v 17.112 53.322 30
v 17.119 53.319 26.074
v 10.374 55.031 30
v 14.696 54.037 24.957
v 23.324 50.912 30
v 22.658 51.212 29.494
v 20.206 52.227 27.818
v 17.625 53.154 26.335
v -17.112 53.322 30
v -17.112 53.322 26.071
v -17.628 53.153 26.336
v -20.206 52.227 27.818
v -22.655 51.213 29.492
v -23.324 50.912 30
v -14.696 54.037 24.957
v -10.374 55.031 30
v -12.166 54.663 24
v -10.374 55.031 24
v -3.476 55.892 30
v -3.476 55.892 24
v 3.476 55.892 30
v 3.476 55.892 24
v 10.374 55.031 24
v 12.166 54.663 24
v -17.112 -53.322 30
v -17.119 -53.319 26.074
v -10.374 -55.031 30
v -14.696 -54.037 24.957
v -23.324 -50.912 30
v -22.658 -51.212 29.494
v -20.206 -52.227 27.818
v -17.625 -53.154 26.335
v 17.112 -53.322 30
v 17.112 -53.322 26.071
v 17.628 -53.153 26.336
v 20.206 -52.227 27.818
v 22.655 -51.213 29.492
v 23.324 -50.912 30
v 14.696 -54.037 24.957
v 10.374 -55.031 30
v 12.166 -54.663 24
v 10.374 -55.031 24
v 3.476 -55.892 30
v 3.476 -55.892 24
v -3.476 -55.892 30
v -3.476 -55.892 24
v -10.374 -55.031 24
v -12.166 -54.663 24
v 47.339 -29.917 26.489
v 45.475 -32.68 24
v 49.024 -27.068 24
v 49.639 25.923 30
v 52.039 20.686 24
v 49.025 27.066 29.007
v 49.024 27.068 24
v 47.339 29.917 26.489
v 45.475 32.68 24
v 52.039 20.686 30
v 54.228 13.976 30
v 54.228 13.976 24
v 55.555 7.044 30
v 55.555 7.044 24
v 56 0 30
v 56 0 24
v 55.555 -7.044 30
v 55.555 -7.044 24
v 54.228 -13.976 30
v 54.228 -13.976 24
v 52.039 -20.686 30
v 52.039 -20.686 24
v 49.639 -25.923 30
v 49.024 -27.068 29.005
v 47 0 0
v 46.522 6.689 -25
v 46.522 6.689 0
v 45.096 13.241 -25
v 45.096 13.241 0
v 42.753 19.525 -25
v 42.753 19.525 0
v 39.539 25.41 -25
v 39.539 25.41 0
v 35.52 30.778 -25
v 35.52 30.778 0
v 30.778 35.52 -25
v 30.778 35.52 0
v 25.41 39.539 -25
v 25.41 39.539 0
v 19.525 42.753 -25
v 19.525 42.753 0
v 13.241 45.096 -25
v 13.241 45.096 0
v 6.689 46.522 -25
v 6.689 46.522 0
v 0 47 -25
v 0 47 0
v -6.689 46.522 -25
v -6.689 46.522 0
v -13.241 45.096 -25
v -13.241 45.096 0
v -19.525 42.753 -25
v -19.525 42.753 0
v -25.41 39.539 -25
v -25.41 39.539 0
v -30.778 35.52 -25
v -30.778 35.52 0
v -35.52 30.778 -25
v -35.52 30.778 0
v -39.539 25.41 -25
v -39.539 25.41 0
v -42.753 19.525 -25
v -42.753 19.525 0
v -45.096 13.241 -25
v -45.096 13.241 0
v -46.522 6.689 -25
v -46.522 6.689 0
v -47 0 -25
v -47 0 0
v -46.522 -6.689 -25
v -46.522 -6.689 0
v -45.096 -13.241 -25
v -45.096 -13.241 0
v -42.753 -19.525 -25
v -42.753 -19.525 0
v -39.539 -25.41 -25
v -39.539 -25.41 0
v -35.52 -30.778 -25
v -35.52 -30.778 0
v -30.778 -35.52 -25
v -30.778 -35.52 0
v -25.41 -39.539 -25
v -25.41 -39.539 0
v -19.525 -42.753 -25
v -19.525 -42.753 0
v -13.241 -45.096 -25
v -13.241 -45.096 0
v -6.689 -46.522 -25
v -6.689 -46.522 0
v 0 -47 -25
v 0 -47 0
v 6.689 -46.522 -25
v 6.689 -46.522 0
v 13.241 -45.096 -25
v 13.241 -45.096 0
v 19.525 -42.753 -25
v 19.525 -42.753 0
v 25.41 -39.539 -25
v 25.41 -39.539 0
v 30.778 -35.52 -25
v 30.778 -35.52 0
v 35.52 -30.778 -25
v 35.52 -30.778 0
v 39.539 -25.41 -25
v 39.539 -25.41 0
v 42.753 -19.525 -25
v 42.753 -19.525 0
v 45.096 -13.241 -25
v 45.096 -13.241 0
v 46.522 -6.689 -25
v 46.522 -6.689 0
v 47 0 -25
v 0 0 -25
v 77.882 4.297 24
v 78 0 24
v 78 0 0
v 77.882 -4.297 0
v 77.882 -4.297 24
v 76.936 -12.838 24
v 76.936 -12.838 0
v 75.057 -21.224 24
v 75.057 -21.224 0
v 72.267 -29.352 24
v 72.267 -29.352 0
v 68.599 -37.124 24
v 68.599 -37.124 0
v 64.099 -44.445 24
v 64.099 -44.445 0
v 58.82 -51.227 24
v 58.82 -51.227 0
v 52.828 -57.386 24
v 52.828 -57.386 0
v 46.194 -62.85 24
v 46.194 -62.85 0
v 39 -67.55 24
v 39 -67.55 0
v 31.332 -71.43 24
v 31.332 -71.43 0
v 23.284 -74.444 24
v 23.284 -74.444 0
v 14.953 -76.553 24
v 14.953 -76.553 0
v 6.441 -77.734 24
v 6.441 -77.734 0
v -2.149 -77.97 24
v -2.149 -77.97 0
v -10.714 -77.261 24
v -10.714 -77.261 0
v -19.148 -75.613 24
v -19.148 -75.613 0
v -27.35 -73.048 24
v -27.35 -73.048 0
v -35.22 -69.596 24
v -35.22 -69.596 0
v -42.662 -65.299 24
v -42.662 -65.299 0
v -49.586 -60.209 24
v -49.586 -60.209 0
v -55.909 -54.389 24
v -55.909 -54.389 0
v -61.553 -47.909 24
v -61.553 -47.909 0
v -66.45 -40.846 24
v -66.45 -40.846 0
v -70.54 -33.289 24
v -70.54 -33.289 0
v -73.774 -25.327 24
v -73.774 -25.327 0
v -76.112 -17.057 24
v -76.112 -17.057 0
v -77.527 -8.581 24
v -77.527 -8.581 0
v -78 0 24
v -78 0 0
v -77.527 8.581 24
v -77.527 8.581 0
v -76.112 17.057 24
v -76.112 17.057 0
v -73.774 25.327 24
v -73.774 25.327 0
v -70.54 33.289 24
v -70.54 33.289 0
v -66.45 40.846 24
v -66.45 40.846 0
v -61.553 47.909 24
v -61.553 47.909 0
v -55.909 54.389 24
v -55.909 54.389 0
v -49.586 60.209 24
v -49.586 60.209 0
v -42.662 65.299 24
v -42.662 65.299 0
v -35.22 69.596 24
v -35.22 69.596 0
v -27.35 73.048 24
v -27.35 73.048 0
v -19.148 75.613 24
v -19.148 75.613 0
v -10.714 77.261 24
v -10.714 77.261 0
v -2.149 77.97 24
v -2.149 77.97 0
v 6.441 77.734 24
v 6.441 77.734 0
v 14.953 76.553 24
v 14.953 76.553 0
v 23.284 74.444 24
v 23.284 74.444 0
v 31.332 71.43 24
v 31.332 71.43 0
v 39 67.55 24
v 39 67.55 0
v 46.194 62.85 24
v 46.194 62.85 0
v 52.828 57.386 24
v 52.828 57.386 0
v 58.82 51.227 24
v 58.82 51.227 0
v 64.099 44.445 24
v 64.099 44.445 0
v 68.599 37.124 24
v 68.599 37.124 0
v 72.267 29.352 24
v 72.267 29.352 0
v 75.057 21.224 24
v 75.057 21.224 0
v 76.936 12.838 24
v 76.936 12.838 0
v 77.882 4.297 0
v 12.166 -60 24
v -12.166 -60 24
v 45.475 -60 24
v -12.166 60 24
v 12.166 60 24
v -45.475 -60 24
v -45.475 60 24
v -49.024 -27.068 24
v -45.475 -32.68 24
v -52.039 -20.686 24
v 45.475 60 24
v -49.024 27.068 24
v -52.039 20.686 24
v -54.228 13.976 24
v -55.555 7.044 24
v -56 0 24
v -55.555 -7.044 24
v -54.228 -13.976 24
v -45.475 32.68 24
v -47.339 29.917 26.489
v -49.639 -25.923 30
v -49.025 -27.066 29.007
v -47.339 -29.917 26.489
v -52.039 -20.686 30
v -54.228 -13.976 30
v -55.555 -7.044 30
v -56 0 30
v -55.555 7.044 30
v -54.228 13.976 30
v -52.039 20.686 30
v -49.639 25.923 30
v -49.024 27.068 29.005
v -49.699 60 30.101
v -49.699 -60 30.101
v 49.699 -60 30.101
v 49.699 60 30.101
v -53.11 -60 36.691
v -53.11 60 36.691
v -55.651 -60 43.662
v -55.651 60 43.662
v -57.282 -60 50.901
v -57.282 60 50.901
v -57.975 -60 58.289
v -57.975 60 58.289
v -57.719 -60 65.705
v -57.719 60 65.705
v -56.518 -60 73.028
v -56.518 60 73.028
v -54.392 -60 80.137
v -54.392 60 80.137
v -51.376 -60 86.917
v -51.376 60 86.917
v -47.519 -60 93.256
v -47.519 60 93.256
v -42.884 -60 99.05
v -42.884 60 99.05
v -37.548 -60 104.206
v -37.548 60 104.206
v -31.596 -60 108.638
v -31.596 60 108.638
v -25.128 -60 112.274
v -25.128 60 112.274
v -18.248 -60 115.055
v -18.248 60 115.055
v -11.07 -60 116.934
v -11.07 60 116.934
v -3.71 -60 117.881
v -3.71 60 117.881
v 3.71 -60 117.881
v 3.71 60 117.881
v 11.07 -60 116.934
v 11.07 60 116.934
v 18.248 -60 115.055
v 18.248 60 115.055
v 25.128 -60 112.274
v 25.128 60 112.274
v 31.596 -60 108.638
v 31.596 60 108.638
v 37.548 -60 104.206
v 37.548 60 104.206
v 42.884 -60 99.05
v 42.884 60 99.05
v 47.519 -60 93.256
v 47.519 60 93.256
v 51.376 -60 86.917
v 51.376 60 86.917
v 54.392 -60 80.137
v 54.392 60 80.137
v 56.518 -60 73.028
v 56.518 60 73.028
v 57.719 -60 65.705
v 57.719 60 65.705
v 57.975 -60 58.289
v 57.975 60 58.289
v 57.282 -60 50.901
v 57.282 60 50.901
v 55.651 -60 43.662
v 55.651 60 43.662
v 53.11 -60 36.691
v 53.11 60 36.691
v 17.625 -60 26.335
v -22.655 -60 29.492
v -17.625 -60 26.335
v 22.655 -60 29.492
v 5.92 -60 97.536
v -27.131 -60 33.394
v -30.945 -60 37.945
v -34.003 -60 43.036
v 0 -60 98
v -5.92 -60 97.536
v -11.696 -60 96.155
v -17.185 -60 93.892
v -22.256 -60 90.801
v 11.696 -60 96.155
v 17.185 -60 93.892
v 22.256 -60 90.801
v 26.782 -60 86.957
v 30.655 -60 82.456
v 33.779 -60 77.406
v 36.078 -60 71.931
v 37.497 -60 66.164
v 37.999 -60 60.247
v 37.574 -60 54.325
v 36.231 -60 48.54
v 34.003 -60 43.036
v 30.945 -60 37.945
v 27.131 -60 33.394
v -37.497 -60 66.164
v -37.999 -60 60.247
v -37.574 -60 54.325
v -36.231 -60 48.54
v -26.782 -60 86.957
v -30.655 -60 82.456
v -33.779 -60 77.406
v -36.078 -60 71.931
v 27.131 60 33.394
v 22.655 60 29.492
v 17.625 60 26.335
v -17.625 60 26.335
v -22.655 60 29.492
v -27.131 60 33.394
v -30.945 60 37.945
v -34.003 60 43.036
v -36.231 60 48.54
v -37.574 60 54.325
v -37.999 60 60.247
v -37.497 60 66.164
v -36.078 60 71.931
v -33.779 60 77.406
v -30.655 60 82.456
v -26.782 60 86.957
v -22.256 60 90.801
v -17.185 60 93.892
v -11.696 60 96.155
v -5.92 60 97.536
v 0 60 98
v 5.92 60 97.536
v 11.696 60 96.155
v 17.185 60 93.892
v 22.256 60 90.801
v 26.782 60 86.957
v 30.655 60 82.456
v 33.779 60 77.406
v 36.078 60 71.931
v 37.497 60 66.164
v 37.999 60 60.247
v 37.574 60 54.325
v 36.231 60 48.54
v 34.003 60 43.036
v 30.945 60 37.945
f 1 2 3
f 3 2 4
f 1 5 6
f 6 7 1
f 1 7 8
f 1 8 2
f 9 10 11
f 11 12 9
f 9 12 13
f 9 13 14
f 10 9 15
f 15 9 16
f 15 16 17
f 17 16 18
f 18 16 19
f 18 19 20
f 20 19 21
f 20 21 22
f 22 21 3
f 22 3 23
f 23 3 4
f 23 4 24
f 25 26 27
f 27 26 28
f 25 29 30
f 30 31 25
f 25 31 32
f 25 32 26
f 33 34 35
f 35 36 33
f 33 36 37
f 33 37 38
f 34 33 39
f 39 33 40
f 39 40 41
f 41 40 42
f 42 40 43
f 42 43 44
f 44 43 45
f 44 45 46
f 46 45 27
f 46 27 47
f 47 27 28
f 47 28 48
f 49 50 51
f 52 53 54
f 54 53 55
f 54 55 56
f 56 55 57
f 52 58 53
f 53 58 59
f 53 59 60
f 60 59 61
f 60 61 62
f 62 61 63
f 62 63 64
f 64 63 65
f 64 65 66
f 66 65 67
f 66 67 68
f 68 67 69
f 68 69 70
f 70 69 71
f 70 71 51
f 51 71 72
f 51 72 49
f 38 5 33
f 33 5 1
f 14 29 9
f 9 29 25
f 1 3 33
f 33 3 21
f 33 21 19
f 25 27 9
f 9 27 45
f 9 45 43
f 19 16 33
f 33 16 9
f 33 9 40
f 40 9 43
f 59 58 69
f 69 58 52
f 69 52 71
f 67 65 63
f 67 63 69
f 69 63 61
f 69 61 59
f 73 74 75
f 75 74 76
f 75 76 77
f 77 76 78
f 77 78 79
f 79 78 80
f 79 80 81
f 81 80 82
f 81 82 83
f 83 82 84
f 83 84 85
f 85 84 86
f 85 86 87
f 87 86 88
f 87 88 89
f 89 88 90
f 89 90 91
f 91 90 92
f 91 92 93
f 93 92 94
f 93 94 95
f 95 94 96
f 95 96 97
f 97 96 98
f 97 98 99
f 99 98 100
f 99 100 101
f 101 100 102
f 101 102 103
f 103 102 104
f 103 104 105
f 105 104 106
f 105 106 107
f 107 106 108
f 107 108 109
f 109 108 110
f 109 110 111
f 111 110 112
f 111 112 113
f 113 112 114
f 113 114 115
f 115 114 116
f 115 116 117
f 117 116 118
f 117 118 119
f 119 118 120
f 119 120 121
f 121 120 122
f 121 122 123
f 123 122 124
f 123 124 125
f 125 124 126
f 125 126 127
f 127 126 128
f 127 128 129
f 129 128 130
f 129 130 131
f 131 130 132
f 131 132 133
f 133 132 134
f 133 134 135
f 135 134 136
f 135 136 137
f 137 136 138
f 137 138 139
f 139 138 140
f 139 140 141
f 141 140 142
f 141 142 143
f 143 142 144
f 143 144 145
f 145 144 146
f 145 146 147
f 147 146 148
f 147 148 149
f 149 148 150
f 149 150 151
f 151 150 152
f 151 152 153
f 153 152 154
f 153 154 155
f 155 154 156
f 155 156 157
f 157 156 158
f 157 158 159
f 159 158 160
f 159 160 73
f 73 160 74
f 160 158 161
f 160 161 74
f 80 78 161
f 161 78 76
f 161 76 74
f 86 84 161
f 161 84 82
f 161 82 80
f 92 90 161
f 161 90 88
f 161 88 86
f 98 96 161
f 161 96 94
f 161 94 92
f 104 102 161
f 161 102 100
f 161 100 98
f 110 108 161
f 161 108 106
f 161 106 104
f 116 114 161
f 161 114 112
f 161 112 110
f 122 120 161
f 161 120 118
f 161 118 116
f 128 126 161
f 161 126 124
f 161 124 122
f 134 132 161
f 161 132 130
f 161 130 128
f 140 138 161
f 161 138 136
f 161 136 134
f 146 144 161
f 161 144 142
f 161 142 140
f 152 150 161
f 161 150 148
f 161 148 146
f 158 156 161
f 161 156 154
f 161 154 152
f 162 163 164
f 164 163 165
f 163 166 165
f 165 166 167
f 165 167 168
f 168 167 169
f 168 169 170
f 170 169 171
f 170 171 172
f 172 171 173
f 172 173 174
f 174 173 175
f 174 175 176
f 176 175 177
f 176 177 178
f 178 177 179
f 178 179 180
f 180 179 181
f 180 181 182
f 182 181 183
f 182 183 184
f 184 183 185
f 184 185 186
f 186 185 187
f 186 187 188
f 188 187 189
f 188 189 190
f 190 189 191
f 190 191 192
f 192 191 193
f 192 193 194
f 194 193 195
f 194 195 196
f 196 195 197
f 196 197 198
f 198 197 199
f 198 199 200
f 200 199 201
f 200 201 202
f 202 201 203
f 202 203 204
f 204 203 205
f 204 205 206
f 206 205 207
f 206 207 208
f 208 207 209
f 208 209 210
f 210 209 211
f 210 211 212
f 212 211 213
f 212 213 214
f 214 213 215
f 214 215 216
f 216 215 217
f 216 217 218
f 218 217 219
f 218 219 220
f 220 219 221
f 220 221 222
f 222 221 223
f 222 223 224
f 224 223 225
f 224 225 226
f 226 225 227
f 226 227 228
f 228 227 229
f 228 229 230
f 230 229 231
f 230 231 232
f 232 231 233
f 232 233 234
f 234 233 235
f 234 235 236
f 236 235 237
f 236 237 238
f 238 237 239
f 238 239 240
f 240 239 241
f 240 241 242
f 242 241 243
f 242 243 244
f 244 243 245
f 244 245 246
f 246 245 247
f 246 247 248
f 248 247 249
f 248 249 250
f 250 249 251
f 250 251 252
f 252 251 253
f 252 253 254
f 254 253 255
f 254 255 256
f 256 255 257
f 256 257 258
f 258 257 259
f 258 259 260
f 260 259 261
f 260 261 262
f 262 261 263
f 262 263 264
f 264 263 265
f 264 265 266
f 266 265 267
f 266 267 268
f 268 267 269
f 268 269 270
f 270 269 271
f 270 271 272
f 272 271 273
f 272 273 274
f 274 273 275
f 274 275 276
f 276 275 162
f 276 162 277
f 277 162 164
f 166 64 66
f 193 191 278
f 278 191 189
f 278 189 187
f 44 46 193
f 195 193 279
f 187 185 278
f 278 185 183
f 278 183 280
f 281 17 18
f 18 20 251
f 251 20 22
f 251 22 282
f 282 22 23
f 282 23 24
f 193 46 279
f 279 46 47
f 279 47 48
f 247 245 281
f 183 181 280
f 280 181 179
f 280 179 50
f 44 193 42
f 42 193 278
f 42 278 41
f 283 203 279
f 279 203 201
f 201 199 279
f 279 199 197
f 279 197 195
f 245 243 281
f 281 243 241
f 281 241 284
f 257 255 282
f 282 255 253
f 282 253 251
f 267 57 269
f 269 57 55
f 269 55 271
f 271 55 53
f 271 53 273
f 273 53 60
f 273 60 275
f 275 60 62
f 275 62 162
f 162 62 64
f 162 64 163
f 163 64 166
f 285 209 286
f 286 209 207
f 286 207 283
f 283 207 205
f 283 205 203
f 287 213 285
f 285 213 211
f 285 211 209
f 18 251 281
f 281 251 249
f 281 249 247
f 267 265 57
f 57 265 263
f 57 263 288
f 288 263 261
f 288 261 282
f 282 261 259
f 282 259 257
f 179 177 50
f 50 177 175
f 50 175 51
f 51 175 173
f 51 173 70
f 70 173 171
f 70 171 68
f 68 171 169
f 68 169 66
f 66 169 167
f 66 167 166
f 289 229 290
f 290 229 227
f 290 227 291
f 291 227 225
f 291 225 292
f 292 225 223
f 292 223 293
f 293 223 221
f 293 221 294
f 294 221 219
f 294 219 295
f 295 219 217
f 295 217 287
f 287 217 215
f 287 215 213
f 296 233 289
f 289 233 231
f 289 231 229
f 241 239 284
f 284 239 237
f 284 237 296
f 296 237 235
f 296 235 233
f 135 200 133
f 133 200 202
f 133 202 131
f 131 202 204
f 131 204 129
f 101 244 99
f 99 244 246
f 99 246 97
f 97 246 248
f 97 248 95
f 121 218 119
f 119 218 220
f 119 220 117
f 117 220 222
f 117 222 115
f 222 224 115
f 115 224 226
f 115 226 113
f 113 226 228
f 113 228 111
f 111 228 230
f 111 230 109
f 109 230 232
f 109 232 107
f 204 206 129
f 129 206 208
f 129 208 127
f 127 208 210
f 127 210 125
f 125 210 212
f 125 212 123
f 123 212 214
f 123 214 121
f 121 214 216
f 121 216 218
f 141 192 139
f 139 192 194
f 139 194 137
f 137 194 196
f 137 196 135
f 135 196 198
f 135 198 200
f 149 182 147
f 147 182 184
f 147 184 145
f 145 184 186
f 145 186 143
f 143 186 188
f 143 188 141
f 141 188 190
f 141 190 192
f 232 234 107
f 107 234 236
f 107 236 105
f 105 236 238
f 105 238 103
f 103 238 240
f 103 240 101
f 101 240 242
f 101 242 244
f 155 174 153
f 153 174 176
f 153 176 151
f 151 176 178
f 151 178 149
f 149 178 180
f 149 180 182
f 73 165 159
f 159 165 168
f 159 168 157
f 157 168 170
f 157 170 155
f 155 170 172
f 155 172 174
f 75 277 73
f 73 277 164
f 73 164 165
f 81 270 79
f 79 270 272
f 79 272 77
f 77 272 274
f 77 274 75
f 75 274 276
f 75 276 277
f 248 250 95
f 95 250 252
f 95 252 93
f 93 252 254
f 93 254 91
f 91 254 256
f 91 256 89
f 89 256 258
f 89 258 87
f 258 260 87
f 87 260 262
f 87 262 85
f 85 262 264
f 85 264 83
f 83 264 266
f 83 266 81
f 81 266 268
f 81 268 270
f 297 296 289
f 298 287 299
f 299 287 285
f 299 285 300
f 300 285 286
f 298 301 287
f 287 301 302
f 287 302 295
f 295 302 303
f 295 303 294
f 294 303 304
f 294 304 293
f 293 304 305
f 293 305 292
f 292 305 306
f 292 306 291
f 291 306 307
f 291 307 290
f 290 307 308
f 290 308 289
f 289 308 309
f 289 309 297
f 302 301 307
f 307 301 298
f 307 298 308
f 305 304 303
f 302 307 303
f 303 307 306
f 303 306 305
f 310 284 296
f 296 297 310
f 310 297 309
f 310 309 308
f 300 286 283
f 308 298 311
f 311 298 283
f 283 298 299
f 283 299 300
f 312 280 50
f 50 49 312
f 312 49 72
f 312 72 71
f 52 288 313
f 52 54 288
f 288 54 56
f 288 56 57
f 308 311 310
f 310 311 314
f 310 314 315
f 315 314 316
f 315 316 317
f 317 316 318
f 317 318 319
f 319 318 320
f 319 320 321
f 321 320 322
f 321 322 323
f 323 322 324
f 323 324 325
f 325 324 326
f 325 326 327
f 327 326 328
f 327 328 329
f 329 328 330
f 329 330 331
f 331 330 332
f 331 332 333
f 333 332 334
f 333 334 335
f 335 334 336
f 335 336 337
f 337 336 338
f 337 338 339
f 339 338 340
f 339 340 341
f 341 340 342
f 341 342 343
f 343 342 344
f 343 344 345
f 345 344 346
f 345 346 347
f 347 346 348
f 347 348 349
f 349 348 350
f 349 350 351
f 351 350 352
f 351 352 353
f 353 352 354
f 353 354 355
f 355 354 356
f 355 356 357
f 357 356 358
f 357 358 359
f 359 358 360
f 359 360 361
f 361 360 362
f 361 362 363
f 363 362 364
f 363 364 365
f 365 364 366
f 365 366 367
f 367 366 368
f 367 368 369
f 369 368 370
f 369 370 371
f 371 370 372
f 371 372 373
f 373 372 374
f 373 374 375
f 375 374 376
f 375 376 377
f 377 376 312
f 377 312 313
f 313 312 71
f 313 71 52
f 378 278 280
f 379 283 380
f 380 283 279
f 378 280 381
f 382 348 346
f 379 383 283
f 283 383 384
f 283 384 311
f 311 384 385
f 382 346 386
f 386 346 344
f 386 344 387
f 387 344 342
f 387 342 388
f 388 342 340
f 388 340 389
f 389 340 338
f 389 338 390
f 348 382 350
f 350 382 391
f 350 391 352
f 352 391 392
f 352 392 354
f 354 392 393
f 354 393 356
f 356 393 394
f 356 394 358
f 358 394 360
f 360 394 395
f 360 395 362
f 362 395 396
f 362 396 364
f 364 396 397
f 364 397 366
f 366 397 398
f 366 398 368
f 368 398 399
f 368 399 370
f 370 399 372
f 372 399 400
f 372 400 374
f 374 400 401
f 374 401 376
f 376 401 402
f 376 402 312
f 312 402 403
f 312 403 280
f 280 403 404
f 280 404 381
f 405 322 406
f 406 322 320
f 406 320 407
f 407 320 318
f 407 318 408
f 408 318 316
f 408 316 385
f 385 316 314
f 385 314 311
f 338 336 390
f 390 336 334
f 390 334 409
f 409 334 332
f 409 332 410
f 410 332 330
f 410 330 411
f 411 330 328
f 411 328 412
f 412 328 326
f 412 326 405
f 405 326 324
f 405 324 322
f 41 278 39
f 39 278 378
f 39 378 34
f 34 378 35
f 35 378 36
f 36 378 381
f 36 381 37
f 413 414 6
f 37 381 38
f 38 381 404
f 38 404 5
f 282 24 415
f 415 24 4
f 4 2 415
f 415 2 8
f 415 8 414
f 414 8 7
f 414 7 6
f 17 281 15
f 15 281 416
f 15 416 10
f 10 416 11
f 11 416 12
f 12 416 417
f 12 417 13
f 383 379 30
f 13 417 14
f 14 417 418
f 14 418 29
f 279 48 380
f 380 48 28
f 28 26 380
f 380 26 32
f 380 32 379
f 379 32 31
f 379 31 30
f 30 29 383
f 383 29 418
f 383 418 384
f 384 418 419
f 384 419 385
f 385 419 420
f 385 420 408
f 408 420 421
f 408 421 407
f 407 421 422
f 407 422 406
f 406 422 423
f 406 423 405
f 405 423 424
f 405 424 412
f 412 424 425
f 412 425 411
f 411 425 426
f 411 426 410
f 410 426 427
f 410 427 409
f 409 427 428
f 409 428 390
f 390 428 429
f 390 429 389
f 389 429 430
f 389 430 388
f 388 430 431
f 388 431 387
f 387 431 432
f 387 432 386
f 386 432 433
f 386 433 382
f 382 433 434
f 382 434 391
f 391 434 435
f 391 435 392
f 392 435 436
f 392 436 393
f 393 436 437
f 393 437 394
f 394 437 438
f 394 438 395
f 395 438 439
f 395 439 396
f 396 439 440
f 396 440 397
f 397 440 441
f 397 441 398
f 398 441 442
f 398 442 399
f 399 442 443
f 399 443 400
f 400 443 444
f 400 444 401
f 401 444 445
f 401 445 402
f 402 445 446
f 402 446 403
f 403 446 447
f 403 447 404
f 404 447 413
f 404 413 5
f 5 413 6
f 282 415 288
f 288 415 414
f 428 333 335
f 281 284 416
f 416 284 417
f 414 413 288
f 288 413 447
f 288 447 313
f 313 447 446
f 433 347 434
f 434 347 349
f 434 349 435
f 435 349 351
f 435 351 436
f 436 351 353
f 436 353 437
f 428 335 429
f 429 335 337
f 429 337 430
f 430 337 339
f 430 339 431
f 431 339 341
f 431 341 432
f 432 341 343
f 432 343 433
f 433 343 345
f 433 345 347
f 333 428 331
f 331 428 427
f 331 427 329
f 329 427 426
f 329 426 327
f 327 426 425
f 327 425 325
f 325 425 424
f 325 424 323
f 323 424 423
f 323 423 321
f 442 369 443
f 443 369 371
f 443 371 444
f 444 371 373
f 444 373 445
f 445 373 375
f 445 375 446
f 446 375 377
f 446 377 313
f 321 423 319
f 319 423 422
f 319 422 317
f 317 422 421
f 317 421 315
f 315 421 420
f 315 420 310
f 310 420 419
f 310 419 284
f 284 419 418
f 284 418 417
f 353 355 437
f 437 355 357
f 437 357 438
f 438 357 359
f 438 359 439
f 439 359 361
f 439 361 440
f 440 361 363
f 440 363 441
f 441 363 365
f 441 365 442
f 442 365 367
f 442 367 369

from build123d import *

# Parameters (mm, degrees)
SKETCH_1_R           = 47
EXTRUDE_1_DEPTH      = 25
SKETCH_2_R           = 78
EXTRUDE_2_DEPTH      = 24
SKETCH_3_R           = 56
EXTRUDE_3_DEPTH      = 30
EXTRUDE_4_DEPTH      = 60
EXTRUDE_4_DEPTH_BACK = 60
SKETCH_4_R           = 58
SKETCH_4_R_2         = 38


with BuildPart() as part:
    # 草图1 → 凸台-拉伸1 (new body)
    with BuildSketch(Plane.XY):
        Circle(SKETCH_1_R)
    extrude(amount=-EXTRUDE_1_DEPTH)

    # 草图2 → 凸台-拉伸2 (add)
    with BuildSketch(Plane.XY):
        Circle(SKETCH_2_R)
    extrude(amount=EXTRUDE_2_DEPTH)

    # 草图3 → 凸台-拉伸3 (add)
    with BuildSketch(Plane.XY):
        Circle(SKETCH_3_R)
    extrude(amount=EXTRUDE_3_DEPTH)

    # 草图4 → 凸台-拉伸4 (add, two sides: drawn at the far end of the back side and taken through both)
    with BuildSketch(Plane(origin=(0, 0, 0), x_dir=(1, 0, 0), z_dir=(0, 1, 0)).offset(-EXTRUDE_4_DEPTH_BACK)):
        with Locations((0, -60)):
            Circle(SKETCH_4_R)
        with Locations((0, -60)):
            Circle(SKETCH_4_R_2, mode=Mode.SUBTRACT)
    extrude(amount=EXTRUDE_4_DEPTH + EXTRUDE_4_DEPTH_BACK)


solid = part.part
